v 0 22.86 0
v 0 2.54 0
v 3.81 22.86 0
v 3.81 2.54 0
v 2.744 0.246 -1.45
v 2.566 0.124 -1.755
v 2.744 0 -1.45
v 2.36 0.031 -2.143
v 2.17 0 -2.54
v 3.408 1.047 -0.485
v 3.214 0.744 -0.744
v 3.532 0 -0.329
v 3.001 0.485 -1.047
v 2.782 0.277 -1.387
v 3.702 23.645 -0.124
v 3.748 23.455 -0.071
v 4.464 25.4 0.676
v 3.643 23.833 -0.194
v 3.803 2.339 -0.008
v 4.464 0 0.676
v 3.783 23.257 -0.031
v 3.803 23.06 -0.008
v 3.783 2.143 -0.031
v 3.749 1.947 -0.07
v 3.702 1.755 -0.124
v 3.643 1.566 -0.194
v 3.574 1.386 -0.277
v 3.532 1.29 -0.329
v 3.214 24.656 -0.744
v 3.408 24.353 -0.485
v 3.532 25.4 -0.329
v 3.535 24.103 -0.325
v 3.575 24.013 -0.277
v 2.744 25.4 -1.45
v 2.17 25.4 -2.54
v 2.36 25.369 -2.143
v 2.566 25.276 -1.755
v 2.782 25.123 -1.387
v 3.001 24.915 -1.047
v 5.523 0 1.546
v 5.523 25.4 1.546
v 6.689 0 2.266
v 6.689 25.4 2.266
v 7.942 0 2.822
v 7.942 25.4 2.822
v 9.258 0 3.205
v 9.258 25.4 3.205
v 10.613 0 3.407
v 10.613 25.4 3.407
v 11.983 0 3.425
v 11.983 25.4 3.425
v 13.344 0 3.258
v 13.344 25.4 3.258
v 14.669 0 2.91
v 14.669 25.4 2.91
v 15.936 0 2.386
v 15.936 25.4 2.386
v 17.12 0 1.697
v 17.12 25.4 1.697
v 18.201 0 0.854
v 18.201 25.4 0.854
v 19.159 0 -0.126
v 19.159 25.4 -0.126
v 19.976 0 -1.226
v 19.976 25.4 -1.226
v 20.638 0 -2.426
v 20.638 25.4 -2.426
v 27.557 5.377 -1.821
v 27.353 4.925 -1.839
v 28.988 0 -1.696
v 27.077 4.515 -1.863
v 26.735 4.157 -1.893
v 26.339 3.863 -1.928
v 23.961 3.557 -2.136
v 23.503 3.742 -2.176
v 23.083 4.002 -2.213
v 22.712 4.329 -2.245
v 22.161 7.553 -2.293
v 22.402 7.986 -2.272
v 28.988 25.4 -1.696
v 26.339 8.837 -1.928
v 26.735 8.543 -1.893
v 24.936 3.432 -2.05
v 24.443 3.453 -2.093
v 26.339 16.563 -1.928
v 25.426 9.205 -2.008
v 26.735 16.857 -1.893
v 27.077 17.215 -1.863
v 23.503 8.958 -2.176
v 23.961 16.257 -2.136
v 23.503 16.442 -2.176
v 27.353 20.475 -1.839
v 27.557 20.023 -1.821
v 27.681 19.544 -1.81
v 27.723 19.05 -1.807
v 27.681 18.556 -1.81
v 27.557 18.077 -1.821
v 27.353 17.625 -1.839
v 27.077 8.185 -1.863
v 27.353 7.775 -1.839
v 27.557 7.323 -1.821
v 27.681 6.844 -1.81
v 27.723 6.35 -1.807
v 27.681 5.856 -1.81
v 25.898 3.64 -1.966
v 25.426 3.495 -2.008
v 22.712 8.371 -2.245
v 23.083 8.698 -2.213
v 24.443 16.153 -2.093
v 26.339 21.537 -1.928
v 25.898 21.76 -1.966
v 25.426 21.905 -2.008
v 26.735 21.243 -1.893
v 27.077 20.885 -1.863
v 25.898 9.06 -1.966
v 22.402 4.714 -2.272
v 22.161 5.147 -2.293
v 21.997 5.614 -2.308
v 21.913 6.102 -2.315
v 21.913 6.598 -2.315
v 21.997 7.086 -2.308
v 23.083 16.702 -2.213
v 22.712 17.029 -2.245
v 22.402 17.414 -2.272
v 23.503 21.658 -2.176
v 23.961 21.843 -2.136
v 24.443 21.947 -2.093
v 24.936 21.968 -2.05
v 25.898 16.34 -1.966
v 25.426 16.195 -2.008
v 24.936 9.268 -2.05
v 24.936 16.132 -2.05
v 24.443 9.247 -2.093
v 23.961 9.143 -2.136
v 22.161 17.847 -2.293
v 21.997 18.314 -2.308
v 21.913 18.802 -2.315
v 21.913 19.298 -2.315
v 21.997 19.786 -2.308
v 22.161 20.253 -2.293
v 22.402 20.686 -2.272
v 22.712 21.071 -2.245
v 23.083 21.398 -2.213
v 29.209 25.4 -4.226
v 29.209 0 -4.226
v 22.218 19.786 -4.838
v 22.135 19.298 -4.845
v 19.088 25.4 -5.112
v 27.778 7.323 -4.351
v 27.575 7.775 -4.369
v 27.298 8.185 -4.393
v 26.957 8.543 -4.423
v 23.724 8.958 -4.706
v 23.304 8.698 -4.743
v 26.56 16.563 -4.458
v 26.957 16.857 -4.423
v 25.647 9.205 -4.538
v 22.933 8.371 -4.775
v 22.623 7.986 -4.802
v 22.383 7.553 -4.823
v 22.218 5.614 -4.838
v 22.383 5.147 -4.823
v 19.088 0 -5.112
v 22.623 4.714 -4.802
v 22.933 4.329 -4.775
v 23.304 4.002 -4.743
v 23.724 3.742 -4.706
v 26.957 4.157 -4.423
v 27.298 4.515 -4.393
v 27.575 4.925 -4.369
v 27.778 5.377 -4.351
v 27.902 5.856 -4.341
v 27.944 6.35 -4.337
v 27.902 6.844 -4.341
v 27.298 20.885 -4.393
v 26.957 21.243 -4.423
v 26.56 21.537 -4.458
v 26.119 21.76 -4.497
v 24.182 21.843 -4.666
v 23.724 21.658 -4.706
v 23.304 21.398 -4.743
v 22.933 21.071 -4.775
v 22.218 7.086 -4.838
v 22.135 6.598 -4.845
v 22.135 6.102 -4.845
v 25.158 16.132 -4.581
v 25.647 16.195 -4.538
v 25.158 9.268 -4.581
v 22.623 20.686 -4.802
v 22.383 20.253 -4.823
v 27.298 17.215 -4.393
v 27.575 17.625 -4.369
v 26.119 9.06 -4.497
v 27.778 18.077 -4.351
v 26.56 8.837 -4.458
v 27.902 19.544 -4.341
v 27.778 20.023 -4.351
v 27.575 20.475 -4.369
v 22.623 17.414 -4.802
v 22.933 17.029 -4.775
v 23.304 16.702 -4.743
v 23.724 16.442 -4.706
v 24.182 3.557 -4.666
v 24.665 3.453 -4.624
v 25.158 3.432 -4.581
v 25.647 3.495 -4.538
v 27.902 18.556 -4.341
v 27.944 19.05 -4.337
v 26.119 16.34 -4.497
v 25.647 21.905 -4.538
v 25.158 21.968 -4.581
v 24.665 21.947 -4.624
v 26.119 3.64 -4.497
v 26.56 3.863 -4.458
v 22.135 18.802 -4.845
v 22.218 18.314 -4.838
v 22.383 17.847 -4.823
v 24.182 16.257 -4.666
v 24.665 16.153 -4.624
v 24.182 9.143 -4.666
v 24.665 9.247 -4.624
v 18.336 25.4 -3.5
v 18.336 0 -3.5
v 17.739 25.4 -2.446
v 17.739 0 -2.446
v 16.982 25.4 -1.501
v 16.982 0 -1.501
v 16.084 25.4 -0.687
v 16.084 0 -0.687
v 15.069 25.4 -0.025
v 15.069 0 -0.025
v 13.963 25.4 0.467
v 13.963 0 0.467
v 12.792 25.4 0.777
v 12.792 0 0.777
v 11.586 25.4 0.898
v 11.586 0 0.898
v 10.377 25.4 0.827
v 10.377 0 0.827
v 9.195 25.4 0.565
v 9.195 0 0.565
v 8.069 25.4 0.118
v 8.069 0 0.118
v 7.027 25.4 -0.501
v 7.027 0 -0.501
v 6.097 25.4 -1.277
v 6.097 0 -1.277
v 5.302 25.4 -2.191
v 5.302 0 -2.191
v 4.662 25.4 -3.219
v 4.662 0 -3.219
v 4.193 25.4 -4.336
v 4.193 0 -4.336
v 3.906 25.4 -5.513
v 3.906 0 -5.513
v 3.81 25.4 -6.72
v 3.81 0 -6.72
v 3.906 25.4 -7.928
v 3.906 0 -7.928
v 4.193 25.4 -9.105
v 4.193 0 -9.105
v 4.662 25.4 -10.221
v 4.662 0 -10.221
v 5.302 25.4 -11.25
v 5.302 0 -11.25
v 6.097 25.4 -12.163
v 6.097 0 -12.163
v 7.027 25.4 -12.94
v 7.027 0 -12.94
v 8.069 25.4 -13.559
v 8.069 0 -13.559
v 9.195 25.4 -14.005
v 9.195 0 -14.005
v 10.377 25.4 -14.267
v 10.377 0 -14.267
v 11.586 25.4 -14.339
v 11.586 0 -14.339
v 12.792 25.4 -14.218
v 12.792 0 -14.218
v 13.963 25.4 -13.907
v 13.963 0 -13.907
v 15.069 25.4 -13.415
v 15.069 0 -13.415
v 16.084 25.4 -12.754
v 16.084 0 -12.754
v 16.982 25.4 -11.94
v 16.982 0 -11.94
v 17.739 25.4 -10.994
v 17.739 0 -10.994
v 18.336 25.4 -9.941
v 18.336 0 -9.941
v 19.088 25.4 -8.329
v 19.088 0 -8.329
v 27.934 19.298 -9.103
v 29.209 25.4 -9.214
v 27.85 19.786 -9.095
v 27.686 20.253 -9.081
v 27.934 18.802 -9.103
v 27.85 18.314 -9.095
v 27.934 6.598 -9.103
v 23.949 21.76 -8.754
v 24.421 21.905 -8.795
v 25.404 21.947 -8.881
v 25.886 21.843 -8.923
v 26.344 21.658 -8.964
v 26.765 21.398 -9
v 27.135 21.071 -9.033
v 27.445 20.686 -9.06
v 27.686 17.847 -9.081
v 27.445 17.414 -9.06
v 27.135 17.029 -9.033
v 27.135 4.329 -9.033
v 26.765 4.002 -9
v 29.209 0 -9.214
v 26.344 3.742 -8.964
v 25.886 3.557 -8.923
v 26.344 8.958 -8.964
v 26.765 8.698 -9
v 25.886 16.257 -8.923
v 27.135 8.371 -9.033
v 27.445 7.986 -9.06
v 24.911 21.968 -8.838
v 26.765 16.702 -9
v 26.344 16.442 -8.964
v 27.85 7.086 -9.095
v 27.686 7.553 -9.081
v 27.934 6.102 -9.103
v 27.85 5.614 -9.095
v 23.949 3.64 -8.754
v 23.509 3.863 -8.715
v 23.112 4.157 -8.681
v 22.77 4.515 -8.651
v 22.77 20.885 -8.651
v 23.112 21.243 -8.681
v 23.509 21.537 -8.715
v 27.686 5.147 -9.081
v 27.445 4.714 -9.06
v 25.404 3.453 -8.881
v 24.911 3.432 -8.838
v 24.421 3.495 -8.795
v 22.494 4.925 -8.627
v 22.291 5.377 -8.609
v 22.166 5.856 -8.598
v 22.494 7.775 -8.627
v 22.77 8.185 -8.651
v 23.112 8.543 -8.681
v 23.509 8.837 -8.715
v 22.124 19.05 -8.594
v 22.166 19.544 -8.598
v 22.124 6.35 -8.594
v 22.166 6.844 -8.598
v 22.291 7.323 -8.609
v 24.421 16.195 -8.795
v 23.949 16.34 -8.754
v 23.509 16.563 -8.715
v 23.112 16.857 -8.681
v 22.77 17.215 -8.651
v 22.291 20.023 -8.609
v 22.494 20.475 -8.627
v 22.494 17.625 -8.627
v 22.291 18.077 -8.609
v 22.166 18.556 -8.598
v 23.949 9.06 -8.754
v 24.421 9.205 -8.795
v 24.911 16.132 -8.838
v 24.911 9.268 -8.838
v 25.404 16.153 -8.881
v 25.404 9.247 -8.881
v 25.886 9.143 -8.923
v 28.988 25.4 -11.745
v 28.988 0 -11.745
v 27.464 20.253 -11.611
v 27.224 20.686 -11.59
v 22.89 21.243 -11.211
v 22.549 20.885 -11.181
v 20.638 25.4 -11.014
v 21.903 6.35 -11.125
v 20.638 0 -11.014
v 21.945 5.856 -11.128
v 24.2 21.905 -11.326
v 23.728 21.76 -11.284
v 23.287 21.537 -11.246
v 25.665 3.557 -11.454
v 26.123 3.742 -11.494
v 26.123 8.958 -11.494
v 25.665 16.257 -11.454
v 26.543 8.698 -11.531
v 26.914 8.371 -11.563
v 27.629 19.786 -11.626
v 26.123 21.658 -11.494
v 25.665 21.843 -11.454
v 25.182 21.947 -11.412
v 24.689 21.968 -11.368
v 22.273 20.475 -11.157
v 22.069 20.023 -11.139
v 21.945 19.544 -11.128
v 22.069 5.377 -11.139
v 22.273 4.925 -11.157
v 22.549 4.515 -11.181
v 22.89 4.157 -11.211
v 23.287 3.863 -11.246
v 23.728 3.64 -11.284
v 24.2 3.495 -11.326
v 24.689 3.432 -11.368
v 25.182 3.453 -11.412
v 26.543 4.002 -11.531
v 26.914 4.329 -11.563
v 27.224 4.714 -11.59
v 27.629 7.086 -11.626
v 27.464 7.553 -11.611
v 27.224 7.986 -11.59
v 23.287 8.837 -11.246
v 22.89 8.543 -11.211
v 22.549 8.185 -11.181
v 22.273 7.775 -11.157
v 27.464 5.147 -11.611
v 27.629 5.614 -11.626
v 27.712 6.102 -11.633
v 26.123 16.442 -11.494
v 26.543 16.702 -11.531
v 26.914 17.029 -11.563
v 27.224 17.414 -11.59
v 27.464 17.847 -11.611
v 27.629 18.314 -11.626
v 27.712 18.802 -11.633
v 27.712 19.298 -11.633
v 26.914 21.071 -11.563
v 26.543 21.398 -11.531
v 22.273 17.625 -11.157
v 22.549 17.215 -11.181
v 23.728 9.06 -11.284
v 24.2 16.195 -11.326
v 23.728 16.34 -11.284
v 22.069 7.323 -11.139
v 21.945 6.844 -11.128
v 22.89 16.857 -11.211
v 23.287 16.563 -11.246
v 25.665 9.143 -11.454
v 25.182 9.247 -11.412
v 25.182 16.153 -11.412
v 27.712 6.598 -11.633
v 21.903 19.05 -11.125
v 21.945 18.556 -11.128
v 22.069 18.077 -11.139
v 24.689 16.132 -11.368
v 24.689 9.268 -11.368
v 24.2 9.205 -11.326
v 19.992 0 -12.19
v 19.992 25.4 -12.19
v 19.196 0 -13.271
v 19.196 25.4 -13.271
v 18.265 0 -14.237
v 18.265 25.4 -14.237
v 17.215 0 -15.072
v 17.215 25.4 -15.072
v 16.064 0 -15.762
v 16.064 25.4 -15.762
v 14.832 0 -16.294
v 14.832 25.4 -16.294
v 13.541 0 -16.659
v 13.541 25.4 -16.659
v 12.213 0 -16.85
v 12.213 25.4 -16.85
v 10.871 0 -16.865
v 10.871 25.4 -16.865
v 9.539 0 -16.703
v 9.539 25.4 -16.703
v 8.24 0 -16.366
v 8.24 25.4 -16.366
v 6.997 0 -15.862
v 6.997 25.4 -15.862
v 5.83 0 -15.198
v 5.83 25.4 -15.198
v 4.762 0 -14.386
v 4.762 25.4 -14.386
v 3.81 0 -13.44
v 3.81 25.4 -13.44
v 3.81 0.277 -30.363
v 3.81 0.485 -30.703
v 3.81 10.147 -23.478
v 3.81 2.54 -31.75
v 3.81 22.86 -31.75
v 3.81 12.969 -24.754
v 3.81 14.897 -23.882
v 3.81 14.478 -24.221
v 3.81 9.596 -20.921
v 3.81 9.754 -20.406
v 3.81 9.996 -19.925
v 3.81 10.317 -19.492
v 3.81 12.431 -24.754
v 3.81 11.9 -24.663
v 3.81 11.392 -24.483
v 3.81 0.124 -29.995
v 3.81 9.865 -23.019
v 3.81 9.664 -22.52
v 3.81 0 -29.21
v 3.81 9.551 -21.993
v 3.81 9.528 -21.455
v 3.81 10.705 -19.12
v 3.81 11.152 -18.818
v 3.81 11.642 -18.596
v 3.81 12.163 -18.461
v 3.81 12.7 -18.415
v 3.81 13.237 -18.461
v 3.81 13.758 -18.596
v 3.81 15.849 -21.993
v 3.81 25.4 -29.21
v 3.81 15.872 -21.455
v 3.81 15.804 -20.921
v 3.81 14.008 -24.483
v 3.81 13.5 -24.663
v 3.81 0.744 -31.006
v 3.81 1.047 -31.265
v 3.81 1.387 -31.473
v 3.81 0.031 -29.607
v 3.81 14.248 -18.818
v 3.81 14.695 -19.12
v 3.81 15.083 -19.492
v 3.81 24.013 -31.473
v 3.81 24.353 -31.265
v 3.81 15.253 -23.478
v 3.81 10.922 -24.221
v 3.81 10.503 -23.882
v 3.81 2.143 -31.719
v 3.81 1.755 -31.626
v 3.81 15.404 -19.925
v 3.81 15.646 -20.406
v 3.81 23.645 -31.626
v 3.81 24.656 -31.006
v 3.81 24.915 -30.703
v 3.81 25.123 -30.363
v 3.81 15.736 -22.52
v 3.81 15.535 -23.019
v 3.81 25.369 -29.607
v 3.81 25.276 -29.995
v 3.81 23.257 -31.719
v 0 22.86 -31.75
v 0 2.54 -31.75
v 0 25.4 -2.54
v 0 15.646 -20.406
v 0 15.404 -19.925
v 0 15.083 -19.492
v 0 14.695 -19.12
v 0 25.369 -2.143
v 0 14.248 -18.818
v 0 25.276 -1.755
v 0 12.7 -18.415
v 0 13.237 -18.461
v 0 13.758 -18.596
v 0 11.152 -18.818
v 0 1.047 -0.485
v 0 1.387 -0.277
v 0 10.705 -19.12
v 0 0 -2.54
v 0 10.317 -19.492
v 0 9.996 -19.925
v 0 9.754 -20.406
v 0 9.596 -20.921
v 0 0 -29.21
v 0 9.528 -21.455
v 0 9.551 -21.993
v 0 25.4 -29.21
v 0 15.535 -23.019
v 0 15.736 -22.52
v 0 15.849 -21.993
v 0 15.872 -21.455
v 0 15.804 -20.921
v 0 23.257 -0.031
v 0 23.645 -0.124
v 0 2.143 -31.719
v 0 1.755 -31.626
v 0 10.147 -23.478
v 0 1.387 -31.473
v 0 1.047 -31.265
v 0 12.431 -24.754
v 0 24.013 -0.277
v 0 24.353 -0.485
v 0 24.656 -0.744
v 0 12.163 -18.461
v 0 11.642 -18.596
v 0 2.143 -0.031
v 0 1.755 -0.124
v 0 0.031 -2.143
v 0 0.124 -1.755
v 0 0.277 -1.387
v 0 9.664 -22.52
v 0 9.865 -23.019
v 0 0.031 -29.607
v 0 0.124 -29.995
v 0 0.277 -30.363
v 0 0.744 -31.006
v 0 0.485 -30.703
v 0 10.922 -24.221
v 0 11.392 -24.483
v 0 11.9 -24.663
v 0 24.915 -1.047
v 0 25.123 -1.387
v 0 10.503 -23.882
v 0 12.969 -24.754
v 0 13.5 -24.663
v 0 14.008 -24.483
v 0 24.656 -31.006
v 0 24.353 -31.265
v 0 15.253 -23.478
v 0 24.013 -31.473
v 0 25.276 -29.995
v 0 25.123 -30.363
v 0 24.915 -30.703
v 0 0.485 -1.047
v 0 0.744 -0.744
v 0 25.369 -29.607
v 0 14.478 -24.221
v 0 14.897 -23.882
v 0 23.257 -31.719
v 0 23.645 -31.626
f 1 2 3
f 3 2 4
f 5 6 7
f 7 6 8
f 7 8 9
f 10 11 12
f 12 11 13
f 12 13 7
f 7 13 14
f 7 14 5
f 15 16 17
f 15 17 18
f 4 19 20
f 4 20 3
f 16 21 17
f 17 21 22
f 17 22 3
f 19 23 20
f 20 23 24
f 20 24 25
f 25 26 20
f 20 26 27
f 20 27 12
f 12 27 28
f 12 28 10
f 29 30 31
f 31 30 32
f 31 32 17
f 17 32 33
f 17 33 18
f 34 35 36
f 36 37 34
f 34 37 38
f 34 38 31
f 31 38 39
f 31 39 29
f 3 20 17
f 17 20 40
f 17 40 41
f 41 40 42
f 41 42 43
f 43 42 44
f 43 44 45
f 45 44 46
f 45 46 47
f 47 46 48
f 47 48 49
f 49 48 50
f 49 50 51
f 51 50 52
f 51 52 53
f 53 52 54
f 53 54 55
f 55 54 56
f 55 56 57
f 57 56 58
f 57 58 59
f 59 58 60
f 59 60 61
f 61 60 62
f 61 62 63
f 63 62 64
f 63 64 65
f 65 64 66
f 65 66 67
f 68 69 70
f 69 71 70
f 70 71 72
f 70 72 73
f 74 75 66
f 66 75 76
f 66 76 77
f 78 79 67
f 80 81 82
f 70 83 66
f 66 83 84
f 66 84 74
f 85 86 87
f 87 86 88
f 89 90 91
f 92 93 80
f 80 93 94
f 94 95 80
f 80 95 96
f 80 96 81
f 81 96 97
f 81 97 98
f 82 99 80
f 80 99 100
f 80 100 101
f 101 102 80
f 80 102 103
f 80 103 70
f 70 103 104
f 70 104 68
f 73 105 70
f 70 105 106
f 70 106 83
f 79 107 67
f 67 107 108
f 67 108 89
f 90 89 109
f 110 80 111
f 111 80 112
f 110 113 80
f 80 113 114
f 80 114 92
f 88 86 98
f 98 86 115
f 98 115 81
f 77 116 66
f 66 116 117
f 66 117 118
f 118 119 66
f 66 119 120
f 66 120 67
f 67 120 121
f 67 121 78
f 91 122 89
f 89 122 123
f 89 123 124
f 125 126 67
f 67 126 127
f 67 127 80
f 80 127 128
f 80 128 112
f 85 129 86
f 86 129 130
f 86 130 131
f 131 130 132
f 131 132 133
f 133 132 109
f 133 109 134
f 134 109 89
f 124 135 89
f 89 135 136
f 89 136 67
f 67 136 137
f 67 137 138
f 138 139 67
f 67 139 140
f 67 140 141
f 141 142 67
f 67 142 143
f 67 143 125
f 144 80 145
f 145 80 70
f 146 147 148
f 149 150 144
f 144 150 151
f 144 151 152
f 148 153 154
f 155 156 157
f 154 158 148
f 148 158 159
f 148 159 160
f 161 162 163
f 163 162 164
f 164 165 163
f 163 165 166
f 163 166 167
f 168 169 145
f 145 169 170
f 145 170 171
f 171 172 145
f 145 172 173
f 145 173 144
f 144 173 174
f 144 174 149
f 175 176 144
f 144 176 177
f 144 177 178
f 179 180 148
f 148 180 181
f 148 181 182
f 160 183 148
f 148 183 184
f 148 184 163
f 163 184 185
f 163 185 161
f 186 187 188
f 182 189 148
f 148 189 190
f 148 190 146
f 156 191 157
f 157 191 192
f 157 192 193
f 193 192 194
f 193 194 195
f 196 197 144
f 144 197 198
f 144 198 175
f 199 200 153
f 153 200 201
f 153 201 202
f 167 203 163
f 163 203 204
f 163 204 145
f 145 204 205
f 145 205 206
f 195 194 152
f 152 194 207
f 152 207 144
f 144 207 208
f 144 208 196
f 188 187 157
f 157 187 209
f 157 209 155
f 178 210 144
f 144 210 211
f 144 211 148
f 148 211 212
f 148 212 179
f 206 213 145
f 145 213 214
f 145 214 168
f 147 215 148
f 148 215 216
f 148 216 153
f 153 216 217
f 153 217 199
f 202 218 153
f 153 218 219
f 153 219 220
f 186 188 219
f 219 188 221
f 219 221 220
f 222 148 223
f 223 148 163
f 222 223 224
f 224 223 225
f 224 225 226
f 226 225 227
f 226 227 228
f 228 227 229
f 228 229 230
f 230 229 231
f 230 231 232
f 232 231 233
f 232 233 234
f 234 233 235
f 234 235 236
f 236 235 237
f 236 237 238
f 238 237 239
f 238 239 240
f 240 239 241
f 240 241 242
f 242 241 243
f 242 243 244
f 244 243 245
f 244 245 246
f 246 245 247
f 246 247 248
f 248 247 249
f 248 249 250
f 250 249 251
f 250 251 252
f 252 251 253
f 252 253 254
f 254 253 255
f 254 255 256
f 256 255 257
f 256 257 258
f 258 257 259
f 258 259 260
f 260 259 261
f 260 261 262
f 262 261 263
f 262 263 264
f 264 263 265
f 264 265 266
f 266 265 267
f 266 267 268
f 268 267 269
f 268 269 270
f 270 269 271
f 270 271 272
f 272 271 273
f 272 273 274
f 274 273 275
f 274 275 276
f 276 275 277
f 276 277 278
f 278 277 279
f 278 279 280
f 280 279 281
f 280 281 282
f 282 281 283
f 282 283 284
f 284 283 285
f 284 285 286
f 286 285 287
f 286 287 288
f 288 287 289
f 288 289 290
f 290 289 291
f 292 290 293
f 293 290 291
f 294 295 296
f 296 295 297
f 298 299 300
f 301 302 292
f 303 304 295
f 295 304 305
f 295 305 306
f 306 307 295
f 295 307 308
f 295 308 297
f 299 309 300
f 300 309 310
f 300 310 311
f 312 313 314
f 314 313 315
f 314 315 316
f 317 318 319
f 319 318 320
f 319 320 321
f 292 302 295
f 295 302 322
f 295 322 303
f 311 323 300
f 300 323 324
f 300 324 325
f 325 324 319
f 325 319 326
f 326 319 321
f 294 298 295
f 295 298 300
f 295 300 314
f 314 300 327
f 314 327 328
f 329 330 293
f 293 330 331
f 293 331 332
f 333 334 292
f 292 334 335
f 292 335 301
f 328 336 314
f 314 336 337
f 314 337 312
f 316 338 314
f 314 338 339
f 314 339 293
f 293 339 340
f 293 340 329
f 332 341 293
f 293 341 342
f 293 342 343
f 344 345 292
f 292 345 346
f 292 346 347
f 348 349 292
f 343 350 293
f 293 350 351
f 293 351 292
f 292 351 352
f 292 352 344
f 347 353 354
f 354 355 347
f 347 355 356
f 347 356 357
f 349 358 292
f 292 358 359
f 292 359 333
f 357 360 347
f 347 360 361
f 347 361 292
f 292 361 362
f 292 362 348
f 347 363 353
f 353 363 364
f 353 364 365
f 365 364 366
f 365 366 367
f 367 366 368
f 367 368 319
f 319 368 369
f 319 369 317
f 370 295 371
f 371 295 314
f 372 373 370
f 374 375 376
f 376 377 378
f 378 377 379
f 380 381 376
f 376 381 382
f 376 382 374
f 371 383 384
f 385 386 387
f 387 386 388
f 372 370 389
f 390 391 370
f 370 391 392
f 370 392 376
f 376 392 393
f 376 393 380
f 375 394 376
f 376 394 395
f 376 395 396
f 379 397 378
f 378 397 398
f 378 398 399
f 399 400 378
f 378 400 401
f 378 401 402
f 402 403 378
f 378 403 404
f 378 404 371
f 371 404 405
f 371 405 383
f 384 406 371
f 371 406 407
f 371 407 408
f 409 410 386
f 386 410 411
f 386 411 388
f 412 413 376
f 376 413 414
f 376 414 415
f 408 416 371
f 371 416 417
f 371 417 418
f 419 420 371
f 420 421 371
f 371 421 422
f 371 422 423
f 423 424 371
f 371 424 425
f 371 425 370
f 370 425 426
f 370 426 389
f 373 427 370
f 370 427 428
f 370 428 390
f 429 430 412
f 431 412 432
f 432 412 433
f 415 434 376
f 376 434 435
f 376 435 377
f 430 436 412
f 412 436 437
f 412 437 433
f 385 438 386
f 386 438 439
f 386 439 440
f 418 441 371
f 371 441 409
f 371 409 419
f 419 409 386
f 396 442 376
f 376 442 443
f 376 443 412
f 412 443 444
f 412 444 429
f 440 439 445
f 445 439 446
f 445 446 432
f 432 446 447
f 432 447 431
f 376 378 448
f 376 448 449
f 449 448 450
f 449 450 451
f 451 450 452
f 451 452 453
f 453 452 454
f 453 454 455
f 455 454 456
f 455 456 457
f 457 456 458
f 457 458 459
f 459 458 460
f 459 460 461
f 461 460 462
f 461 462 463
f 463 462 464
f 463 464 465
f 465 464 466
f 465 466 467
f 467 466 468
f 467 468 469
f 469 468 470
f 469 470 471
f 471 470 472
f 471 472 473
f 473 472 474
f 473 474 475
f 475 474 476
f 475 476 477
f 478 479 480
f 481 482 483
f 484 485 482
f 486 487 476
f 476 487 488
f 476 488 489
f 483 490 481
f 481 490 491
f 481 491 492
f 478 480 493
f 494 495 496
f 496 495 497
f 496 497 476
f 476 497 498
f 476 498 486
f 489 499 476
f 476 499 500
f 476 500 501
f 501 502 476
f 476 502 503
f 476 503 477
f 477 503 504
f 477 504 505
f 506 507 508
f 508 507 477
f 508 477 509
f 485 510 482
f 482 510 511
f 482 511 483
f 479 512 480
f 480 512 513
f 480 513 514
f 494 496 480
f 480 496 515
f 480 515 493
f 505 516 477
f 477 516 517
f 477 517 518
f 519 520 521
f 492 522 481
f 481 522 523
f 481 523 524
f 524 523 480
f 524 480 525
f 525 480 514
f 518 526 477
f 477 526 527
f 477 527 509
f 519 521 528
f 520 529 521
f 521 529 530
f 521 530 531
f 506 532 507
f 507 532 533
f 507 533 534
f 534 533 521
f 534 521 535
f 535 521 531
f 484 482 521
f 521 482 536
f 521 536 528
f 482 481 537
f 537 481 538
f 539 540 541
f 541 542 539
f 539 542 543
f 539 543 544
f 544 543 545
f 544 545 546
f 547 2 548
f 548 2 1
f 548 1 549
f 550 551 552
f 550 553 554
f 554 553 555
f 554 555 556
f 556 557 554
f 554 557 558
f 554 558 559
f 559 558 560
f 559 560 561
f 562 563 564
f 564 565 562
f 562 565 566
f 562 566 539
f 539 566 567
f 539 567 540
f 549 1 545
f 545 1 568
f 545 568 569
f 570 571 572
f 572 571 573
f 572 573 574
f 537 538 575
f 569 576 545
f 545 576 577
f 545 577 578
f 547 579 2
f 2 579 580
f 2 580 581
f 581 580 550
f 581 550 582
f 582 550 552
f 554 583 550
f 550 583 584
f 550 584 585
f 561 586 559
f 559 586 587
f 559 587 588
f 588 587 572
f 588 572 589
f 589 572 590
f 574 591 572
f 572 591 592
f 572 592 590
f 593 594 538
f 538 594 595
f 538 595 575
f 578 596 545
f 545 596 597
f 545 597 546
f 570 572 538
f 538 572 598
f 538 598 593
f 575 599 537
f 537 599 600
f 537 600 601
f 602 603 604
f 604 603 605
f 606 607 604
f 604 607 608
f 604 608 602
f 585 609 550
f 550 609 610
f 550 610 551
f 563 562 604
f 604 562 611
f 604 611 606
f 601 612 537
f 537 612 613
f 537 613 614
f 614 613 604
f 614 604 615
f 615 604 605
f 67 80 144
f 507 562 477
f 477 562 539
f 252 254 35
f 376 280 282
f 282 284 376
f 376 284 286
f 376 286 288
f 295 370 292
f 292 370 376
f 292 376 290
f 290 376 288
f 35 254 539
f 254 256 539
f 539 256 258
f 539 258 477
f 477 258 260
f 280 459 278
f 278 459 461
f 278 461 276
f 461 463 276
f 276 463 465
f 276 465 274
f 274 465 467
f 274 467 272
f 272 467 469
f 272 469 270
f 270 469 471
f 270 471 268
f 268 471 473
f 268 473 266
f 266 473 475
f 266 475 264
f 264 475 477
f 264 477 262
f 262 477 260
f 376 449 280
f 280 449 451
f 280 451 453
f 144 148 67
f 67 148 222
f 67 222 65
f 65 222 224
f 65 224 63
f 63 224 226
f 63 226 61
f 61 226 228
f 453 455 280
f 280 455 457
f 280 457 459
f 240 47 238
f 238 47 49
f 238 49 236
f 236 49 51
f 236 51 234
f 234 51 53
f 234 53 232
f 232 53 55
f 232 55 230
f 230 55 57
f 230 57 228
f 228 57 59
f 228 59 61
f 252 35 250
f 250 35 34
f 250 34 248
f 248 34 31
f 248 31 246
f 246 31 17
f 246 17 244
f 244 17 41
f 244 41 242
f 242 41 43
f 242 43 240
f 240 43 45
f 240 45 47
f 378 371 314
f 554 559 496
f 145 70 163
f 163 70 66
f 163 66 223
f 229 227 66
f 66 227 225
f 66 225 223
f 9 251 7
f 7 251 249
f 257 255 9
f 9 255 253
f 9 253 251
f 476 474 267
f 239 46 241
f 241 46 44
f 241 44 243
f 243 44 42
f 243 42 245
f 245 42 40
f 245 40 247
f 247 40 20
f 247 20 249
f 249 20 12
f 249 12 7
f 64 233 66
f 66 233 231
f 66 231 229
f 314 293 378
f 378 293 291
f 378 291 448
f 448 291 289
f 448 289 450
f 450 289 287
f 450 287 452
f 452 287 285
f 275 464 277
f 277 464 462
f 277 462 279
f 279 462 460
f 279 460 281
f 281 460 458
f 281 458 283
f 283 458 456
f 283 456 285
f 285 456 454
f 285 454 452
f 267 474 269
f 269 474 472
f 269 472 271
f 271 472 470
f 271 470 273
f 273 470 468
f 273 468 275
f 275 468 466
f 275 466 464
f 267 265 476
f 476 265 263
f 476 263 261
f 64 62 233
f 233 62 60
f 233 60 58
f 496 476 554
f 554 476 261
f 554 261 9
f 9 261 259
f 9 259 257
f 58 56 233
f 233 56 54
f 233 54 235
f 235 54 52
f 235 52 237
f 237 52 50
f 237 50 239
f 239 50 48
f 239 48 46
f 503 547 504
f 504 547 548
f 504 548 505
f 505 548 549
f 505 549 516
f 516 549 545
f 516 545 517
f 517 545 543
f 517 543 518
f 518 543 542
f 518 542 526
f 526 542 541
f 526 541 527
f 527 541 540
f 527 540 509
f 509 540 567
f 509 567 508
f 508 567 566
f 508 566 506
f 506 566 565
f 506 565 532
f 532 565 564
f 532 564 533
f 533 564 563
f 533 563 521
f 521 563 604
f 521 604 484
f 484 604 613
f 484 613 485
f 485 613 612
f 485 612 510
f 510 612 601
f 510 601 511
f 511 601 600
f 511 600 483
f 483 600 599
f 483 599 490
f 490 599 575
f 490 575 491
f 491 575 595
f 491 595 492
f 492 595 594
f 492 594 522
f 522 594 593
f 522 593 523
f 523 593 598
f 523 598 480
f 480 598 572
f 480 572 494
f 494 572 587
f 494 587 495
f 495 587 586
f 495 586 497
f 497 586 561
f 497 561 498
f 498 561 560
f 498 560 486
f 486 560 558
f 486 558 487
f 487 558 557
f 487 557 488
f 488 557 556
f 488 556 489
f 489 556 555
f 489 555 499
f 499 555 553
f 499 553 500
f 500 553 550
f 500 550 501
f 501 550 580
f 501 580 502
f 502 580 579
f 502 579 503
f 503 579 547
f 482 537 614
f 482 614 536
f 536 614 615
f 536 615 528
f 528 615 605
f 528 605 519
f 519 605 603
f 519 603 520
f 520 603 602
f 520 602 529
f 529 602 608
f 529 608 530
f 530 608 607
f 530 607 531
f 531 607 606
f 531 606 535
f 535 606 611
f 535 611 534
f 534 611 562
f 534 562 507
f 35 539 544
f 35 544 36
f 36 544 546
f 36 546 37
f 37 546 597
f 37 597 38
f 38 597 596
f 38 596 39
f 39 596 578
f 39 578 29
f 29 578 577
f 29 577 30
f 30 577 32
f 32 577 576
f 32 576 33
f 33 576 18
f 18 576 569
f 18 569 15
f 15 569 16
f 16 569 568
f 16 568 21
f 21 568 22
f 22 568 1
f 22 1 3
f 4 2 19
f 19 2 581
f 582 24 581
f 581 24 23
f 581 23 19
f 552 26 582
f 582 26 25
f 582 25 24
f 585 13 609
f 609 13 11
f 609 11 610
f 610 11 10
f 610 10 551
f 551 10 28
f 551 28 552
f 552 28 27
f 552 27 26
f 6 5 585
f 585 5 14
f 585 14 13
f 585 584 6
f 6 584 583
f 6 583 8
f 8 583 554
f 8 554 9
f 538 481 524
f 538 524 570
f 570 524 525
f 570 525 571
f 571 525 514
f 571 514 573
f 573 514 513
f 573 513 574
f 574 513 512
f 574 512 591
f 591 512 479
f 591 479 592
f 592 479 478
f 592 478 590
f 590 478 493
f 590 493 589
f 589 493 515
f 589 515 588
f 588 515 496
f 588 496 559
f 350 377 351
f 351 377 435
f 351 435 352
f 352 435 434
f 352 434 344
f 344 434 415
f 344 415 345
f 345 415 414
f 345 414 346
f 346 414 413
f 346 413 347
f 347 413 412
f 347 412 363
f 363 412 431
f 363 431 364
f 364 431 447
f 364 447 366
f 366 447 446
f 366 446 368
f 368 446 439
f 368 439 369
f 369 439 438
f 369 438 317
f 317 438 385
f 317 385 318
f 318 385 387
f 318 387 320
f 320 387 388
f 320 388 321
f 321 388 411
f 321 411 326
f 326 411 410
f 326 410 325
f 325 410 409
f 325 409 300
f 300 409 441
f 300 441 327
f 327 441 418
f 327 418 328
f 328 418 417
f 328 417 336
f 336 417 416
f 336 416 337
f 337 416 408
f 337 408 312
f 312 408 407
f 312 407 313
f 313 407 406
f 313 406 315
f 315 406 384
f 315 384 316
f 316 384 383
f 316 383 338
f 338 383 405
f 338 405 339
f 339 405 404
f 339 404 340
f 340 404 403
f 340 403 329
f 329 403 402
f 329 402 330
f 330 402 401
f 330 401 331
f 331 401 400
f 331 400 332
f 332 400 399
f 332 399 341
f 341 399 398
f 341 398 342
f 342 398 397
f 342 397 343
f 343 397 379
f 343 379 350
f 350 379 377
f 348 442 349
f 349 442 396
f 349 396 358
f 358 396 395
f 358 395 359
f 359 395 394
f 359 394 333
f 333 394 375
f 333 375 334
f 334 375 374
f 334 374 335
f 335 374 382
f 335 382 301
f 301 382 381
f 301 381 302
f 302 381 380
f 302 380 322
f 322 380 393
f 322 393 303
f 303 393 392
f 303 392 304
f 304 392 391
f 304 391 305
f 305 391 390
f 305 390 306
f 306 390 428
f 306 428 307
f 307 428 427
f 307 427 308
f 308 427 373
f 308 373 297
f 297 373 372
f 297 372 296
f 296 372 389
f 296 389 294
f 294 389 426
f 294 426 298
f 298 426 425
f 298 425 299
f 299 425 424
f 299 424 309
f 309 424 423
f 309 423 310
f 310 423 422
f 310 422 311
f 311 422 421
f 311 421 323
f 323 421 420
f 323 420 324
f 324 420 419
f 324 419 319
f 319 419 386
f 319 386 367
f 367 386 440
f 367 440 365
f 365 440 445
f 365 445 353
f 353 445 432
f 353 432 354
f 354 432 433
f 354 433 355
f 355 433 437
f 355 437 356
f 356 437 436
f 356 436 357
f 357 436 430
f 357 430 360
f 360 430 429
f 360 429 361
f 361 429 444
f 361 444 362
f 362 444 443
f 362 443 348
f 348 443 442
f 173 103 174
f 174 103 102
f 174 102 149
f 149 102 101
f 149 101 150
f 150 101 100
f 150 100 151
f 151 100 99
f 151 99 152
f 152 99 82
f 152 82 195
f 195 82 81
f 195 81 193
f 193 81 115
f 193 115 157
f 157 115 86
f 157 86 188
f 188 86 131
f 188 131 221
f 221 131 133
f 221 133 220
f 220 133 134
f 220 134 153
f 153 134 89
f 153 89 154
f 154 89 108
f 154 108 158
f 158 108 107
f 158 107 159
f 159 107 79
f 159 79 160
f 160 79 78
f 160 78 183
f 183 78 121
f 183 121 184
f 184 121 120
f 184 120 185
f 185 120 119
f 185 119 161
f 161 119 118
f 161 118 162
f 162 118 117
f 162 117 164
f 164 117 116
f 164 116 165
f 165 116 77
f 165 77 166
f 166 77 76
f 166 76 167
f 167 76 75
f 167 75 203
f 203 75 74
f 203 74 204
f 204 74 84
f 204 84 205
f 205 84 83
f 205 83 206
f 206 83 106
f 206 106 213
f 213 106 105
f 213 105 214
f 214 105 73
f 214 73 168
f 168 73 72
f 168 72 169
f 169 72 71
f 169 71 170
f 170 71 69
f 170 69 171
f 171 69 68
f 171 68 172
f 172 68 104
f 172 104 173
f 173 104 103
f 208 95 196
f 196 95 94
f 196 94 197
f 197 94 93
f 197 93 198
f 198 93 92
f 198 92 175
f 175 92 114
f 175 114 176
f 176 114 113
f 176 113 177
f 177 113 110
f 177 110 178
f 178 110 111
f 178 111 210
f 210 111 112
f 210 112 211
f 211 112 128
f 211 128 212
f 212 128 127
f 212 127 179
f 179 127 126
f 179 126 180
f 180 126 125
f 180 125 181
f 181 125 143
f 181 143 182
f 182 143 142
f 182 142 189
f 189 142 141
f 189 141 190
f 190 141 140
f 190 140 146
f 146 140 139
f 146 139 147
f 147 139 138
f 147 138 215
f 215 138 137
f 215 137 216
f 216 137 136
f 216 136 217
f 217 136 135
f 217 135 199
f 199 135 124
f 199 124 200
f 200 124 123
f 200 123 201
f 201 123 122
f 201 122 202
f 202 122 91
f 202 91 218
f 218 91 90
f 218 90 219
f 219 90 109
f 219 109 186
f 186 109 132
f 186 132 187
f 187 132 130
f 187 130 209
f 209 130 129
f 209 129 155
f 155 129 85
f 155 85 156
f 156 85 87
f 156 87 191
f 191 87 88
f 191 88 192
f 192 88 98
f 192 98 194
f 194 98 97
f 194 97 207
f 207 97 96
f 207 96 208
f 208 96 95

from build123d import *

# Parameters (mm, degrees)
BOSS_EXTRUDE1_DEPTH = 25.4
CUT_EXTRUDE1_REACH  = 52.064
SKETCH2_R           = 3.175
FILLET1_R           = 2.54
CUT_EXTRUDE2_REACH  = 47.354
SKETCH3_R           = 2.921
CUT_EXTRUDE3_REACH  = 49.286
SKETCH4_R           = 2.921


with BuildPart() as part:
    # Sketch1 → Boss-Extrude1 (new body)
    with BuildSketch(Plane(origin=(0, 0, 0), x_dir=(1, 0, 0), z_dir=(0, 1, 0))):
        with BuildLine():
            Line((0, 0), (0, 31.75))
            Line((0, 31.75), (3.81, 31.75))
            Line((3.81, 31.75), (3.81, 13.44041666))
            ThreePointArc((3.81, 13.44041666), (12.879954362, 16.776213121), (20.638087116, 11.014009869))
            Line((20.638087116, 11.014009869), (28.987665935, 11.744503361))
            Line((28.987665935, 11.744503361), (29.209041521, 9.214168828))
            Line((29.209041521, 9.214168828), (19.087703389, 8.328666482))
            Line((19.087703389, 8.328666482), (18.336065337, 9.940559485))
            ThreePointArc((18.336065337, 9.940559485), (9.780730142, 14.159583904), (3.81, 6.72020833))
            ThreePointArc((3.81, 6.72020833), (9.780730142, -0.719167244), (18.336065337, 3.499857176))
            Line((18.336065337, 3.499857176), (19.087703389, 5.111750178))
            Line((19.087703389, 5.111750178), (29.209041521, 4.226247832))
            Line((29.209041521, 4.226247832), (28.987665935, 1.695913299))
            Line((28.987665935, 1.695913299), (20.638087116, 2.426406791))
            ThreePointArc((20.638087116, 2.426406791), (12.879954362, -3.335796461), (3.81, 0))
            Line((3.81, 0), (0, 0))
        make_face()
    extrude(amount=BOSS_EXTRUDE1_DEPTH)

    # Sketch2 → Cut-Extrude1 (cut, up to next)
    with BuildSketch(Plane.ZY, mode=Mode.PRIVATE) as cut_extrude1_sk1:
        with Locations((-21.59, 12.7)):
            Circle(SKETCH2_R)
    cut_extrude1_tool1 = extrude(cut_extrude1_sk1.sketch, amount=-CUT_EXTRUDE1_REACH, mode=Mode.PRIVATE) & part.part
    add(cut_extrude1_tool1.solids().sort_by_distance((0, 12.7, -21.59))[0], mode=Mode.SUBTRACT)

    # Fillet1
    fillet1_edges = [part.edges().sort_by_distance(p)[0] for p in [
        (1.905, 0, -31.75),
        (1.905, 0, 0),
        (1.905, 25.4, 0),
        (1.905, 25.4, -31.75),
    ]]
    fillet(fillet1_edges, radius=FILLET1_R)

    # Sketch3 → Cut-Extrude2 (cut, up to next)
    with BuildSketch(Plane(origin=(-0.799511913, 0, -9.138462981), x_dir=(-0.996194698091745, 0, 0.08715574274766381), z_dir=(-0.08715574274766381, 0, -0.9961946980917451)), mode=Mode.PRIVATE) as cut_extrude2_sk1:
        with Locations((-25.710223601, 19.05)):
            Circle(SKETCH3_R)
    cut_extrude2_tool1 = extrude(cut_extrude2_sk1.sketch, amount=-CUT_EXTRUDE2_REACH, mode=Mode.PRIVATE) & part.part
    # Sketch3 → Cut-Extrude2 (cut, up to next)
    with BuildSketch(Plane(origin=(-0.799511913, 0, -9.138462981), x_dir=(-0.996194698091745, 0, 0.08715574274766381), z_dir=(-0.08715574274766381, 0, -0.9961946980917451)), mode=Mode.PRIVATE) as cut_extrude2_sk2:
        with Locations((-25.710223601, 6.35)):
            Circle(SKETCH3_R)
    cut_extrude2_tool2 = extrude(cut_extrude2_sk2.sketch, amount=-CUT_EXTRUDE2_REACH, mode=Mode.PRIVATE) & part.part
    add(cut_extrude2_tool1.solids().sort_by_distance((24.812877, 19.05, -11.379257))[0], mode=Mode.SUBTRACT)
    add(cut_extrude2_tool2.solids().sort_by_distance((24.812877, 6.35, -11.379257))[0], mode=Mode.SUBTRACT)

    # Sketch4 → Cut-Extrude3 (cut, up to next)
    with BuildSketch(Plane(origin=(0.367440017, 0, -4.199858614), x_dir=(0.9961946980917455, 0, 0.0871557427476594), z_dir=(-0.0871557427476594, 0, 0.9961946980917455)), mode=Mode.PRIVATE) as cut_extrude3_sk1:
        with Locations((24.538814104, 19.05)):
            Circle(SKETCH4_R)
    cut_extrude3_tool1 = extrude(cut_extrude3_sk1.sketch, amount=-CUT_EXTRUDE3_REACH, mode=Mode.PRIVATE) & part.part
    # Sketch4 → Cut-Extrude3 (cut, up to next)
    with BuildSketch(Plane(origin=(0.367440017, 0, -4.199858614), x_dir=(0.9961946980917455, 0, 0.0871557427476594), z_dir=(-0.0871557427476594, 0, 0.9961946980917455)), mode=Mode.PRIVATE) as cut_extrude3_sk2:
        with Locations((24.538814104, 6.35)):
            Circle(SKETCH4_R)
    cut_extrude3_tool2 = extrude(cut_extrude3_sk2.sketch, amount=-CUT_EXTRUDE3_REACH, mode=Mode.PRIVATE) & part.part
    add(cut_extrude3_tool1.solids().sort_by_distance((24.812877, 19.05, -2.06116))[0], mode=Mode.SUBTRACT)
    add(cut_extrude3_tool2.solids().sort_by_distance((24.812877, 6.35, -2.06116))[0], mode=Mode.SUBTRACT)


solid = part.part
